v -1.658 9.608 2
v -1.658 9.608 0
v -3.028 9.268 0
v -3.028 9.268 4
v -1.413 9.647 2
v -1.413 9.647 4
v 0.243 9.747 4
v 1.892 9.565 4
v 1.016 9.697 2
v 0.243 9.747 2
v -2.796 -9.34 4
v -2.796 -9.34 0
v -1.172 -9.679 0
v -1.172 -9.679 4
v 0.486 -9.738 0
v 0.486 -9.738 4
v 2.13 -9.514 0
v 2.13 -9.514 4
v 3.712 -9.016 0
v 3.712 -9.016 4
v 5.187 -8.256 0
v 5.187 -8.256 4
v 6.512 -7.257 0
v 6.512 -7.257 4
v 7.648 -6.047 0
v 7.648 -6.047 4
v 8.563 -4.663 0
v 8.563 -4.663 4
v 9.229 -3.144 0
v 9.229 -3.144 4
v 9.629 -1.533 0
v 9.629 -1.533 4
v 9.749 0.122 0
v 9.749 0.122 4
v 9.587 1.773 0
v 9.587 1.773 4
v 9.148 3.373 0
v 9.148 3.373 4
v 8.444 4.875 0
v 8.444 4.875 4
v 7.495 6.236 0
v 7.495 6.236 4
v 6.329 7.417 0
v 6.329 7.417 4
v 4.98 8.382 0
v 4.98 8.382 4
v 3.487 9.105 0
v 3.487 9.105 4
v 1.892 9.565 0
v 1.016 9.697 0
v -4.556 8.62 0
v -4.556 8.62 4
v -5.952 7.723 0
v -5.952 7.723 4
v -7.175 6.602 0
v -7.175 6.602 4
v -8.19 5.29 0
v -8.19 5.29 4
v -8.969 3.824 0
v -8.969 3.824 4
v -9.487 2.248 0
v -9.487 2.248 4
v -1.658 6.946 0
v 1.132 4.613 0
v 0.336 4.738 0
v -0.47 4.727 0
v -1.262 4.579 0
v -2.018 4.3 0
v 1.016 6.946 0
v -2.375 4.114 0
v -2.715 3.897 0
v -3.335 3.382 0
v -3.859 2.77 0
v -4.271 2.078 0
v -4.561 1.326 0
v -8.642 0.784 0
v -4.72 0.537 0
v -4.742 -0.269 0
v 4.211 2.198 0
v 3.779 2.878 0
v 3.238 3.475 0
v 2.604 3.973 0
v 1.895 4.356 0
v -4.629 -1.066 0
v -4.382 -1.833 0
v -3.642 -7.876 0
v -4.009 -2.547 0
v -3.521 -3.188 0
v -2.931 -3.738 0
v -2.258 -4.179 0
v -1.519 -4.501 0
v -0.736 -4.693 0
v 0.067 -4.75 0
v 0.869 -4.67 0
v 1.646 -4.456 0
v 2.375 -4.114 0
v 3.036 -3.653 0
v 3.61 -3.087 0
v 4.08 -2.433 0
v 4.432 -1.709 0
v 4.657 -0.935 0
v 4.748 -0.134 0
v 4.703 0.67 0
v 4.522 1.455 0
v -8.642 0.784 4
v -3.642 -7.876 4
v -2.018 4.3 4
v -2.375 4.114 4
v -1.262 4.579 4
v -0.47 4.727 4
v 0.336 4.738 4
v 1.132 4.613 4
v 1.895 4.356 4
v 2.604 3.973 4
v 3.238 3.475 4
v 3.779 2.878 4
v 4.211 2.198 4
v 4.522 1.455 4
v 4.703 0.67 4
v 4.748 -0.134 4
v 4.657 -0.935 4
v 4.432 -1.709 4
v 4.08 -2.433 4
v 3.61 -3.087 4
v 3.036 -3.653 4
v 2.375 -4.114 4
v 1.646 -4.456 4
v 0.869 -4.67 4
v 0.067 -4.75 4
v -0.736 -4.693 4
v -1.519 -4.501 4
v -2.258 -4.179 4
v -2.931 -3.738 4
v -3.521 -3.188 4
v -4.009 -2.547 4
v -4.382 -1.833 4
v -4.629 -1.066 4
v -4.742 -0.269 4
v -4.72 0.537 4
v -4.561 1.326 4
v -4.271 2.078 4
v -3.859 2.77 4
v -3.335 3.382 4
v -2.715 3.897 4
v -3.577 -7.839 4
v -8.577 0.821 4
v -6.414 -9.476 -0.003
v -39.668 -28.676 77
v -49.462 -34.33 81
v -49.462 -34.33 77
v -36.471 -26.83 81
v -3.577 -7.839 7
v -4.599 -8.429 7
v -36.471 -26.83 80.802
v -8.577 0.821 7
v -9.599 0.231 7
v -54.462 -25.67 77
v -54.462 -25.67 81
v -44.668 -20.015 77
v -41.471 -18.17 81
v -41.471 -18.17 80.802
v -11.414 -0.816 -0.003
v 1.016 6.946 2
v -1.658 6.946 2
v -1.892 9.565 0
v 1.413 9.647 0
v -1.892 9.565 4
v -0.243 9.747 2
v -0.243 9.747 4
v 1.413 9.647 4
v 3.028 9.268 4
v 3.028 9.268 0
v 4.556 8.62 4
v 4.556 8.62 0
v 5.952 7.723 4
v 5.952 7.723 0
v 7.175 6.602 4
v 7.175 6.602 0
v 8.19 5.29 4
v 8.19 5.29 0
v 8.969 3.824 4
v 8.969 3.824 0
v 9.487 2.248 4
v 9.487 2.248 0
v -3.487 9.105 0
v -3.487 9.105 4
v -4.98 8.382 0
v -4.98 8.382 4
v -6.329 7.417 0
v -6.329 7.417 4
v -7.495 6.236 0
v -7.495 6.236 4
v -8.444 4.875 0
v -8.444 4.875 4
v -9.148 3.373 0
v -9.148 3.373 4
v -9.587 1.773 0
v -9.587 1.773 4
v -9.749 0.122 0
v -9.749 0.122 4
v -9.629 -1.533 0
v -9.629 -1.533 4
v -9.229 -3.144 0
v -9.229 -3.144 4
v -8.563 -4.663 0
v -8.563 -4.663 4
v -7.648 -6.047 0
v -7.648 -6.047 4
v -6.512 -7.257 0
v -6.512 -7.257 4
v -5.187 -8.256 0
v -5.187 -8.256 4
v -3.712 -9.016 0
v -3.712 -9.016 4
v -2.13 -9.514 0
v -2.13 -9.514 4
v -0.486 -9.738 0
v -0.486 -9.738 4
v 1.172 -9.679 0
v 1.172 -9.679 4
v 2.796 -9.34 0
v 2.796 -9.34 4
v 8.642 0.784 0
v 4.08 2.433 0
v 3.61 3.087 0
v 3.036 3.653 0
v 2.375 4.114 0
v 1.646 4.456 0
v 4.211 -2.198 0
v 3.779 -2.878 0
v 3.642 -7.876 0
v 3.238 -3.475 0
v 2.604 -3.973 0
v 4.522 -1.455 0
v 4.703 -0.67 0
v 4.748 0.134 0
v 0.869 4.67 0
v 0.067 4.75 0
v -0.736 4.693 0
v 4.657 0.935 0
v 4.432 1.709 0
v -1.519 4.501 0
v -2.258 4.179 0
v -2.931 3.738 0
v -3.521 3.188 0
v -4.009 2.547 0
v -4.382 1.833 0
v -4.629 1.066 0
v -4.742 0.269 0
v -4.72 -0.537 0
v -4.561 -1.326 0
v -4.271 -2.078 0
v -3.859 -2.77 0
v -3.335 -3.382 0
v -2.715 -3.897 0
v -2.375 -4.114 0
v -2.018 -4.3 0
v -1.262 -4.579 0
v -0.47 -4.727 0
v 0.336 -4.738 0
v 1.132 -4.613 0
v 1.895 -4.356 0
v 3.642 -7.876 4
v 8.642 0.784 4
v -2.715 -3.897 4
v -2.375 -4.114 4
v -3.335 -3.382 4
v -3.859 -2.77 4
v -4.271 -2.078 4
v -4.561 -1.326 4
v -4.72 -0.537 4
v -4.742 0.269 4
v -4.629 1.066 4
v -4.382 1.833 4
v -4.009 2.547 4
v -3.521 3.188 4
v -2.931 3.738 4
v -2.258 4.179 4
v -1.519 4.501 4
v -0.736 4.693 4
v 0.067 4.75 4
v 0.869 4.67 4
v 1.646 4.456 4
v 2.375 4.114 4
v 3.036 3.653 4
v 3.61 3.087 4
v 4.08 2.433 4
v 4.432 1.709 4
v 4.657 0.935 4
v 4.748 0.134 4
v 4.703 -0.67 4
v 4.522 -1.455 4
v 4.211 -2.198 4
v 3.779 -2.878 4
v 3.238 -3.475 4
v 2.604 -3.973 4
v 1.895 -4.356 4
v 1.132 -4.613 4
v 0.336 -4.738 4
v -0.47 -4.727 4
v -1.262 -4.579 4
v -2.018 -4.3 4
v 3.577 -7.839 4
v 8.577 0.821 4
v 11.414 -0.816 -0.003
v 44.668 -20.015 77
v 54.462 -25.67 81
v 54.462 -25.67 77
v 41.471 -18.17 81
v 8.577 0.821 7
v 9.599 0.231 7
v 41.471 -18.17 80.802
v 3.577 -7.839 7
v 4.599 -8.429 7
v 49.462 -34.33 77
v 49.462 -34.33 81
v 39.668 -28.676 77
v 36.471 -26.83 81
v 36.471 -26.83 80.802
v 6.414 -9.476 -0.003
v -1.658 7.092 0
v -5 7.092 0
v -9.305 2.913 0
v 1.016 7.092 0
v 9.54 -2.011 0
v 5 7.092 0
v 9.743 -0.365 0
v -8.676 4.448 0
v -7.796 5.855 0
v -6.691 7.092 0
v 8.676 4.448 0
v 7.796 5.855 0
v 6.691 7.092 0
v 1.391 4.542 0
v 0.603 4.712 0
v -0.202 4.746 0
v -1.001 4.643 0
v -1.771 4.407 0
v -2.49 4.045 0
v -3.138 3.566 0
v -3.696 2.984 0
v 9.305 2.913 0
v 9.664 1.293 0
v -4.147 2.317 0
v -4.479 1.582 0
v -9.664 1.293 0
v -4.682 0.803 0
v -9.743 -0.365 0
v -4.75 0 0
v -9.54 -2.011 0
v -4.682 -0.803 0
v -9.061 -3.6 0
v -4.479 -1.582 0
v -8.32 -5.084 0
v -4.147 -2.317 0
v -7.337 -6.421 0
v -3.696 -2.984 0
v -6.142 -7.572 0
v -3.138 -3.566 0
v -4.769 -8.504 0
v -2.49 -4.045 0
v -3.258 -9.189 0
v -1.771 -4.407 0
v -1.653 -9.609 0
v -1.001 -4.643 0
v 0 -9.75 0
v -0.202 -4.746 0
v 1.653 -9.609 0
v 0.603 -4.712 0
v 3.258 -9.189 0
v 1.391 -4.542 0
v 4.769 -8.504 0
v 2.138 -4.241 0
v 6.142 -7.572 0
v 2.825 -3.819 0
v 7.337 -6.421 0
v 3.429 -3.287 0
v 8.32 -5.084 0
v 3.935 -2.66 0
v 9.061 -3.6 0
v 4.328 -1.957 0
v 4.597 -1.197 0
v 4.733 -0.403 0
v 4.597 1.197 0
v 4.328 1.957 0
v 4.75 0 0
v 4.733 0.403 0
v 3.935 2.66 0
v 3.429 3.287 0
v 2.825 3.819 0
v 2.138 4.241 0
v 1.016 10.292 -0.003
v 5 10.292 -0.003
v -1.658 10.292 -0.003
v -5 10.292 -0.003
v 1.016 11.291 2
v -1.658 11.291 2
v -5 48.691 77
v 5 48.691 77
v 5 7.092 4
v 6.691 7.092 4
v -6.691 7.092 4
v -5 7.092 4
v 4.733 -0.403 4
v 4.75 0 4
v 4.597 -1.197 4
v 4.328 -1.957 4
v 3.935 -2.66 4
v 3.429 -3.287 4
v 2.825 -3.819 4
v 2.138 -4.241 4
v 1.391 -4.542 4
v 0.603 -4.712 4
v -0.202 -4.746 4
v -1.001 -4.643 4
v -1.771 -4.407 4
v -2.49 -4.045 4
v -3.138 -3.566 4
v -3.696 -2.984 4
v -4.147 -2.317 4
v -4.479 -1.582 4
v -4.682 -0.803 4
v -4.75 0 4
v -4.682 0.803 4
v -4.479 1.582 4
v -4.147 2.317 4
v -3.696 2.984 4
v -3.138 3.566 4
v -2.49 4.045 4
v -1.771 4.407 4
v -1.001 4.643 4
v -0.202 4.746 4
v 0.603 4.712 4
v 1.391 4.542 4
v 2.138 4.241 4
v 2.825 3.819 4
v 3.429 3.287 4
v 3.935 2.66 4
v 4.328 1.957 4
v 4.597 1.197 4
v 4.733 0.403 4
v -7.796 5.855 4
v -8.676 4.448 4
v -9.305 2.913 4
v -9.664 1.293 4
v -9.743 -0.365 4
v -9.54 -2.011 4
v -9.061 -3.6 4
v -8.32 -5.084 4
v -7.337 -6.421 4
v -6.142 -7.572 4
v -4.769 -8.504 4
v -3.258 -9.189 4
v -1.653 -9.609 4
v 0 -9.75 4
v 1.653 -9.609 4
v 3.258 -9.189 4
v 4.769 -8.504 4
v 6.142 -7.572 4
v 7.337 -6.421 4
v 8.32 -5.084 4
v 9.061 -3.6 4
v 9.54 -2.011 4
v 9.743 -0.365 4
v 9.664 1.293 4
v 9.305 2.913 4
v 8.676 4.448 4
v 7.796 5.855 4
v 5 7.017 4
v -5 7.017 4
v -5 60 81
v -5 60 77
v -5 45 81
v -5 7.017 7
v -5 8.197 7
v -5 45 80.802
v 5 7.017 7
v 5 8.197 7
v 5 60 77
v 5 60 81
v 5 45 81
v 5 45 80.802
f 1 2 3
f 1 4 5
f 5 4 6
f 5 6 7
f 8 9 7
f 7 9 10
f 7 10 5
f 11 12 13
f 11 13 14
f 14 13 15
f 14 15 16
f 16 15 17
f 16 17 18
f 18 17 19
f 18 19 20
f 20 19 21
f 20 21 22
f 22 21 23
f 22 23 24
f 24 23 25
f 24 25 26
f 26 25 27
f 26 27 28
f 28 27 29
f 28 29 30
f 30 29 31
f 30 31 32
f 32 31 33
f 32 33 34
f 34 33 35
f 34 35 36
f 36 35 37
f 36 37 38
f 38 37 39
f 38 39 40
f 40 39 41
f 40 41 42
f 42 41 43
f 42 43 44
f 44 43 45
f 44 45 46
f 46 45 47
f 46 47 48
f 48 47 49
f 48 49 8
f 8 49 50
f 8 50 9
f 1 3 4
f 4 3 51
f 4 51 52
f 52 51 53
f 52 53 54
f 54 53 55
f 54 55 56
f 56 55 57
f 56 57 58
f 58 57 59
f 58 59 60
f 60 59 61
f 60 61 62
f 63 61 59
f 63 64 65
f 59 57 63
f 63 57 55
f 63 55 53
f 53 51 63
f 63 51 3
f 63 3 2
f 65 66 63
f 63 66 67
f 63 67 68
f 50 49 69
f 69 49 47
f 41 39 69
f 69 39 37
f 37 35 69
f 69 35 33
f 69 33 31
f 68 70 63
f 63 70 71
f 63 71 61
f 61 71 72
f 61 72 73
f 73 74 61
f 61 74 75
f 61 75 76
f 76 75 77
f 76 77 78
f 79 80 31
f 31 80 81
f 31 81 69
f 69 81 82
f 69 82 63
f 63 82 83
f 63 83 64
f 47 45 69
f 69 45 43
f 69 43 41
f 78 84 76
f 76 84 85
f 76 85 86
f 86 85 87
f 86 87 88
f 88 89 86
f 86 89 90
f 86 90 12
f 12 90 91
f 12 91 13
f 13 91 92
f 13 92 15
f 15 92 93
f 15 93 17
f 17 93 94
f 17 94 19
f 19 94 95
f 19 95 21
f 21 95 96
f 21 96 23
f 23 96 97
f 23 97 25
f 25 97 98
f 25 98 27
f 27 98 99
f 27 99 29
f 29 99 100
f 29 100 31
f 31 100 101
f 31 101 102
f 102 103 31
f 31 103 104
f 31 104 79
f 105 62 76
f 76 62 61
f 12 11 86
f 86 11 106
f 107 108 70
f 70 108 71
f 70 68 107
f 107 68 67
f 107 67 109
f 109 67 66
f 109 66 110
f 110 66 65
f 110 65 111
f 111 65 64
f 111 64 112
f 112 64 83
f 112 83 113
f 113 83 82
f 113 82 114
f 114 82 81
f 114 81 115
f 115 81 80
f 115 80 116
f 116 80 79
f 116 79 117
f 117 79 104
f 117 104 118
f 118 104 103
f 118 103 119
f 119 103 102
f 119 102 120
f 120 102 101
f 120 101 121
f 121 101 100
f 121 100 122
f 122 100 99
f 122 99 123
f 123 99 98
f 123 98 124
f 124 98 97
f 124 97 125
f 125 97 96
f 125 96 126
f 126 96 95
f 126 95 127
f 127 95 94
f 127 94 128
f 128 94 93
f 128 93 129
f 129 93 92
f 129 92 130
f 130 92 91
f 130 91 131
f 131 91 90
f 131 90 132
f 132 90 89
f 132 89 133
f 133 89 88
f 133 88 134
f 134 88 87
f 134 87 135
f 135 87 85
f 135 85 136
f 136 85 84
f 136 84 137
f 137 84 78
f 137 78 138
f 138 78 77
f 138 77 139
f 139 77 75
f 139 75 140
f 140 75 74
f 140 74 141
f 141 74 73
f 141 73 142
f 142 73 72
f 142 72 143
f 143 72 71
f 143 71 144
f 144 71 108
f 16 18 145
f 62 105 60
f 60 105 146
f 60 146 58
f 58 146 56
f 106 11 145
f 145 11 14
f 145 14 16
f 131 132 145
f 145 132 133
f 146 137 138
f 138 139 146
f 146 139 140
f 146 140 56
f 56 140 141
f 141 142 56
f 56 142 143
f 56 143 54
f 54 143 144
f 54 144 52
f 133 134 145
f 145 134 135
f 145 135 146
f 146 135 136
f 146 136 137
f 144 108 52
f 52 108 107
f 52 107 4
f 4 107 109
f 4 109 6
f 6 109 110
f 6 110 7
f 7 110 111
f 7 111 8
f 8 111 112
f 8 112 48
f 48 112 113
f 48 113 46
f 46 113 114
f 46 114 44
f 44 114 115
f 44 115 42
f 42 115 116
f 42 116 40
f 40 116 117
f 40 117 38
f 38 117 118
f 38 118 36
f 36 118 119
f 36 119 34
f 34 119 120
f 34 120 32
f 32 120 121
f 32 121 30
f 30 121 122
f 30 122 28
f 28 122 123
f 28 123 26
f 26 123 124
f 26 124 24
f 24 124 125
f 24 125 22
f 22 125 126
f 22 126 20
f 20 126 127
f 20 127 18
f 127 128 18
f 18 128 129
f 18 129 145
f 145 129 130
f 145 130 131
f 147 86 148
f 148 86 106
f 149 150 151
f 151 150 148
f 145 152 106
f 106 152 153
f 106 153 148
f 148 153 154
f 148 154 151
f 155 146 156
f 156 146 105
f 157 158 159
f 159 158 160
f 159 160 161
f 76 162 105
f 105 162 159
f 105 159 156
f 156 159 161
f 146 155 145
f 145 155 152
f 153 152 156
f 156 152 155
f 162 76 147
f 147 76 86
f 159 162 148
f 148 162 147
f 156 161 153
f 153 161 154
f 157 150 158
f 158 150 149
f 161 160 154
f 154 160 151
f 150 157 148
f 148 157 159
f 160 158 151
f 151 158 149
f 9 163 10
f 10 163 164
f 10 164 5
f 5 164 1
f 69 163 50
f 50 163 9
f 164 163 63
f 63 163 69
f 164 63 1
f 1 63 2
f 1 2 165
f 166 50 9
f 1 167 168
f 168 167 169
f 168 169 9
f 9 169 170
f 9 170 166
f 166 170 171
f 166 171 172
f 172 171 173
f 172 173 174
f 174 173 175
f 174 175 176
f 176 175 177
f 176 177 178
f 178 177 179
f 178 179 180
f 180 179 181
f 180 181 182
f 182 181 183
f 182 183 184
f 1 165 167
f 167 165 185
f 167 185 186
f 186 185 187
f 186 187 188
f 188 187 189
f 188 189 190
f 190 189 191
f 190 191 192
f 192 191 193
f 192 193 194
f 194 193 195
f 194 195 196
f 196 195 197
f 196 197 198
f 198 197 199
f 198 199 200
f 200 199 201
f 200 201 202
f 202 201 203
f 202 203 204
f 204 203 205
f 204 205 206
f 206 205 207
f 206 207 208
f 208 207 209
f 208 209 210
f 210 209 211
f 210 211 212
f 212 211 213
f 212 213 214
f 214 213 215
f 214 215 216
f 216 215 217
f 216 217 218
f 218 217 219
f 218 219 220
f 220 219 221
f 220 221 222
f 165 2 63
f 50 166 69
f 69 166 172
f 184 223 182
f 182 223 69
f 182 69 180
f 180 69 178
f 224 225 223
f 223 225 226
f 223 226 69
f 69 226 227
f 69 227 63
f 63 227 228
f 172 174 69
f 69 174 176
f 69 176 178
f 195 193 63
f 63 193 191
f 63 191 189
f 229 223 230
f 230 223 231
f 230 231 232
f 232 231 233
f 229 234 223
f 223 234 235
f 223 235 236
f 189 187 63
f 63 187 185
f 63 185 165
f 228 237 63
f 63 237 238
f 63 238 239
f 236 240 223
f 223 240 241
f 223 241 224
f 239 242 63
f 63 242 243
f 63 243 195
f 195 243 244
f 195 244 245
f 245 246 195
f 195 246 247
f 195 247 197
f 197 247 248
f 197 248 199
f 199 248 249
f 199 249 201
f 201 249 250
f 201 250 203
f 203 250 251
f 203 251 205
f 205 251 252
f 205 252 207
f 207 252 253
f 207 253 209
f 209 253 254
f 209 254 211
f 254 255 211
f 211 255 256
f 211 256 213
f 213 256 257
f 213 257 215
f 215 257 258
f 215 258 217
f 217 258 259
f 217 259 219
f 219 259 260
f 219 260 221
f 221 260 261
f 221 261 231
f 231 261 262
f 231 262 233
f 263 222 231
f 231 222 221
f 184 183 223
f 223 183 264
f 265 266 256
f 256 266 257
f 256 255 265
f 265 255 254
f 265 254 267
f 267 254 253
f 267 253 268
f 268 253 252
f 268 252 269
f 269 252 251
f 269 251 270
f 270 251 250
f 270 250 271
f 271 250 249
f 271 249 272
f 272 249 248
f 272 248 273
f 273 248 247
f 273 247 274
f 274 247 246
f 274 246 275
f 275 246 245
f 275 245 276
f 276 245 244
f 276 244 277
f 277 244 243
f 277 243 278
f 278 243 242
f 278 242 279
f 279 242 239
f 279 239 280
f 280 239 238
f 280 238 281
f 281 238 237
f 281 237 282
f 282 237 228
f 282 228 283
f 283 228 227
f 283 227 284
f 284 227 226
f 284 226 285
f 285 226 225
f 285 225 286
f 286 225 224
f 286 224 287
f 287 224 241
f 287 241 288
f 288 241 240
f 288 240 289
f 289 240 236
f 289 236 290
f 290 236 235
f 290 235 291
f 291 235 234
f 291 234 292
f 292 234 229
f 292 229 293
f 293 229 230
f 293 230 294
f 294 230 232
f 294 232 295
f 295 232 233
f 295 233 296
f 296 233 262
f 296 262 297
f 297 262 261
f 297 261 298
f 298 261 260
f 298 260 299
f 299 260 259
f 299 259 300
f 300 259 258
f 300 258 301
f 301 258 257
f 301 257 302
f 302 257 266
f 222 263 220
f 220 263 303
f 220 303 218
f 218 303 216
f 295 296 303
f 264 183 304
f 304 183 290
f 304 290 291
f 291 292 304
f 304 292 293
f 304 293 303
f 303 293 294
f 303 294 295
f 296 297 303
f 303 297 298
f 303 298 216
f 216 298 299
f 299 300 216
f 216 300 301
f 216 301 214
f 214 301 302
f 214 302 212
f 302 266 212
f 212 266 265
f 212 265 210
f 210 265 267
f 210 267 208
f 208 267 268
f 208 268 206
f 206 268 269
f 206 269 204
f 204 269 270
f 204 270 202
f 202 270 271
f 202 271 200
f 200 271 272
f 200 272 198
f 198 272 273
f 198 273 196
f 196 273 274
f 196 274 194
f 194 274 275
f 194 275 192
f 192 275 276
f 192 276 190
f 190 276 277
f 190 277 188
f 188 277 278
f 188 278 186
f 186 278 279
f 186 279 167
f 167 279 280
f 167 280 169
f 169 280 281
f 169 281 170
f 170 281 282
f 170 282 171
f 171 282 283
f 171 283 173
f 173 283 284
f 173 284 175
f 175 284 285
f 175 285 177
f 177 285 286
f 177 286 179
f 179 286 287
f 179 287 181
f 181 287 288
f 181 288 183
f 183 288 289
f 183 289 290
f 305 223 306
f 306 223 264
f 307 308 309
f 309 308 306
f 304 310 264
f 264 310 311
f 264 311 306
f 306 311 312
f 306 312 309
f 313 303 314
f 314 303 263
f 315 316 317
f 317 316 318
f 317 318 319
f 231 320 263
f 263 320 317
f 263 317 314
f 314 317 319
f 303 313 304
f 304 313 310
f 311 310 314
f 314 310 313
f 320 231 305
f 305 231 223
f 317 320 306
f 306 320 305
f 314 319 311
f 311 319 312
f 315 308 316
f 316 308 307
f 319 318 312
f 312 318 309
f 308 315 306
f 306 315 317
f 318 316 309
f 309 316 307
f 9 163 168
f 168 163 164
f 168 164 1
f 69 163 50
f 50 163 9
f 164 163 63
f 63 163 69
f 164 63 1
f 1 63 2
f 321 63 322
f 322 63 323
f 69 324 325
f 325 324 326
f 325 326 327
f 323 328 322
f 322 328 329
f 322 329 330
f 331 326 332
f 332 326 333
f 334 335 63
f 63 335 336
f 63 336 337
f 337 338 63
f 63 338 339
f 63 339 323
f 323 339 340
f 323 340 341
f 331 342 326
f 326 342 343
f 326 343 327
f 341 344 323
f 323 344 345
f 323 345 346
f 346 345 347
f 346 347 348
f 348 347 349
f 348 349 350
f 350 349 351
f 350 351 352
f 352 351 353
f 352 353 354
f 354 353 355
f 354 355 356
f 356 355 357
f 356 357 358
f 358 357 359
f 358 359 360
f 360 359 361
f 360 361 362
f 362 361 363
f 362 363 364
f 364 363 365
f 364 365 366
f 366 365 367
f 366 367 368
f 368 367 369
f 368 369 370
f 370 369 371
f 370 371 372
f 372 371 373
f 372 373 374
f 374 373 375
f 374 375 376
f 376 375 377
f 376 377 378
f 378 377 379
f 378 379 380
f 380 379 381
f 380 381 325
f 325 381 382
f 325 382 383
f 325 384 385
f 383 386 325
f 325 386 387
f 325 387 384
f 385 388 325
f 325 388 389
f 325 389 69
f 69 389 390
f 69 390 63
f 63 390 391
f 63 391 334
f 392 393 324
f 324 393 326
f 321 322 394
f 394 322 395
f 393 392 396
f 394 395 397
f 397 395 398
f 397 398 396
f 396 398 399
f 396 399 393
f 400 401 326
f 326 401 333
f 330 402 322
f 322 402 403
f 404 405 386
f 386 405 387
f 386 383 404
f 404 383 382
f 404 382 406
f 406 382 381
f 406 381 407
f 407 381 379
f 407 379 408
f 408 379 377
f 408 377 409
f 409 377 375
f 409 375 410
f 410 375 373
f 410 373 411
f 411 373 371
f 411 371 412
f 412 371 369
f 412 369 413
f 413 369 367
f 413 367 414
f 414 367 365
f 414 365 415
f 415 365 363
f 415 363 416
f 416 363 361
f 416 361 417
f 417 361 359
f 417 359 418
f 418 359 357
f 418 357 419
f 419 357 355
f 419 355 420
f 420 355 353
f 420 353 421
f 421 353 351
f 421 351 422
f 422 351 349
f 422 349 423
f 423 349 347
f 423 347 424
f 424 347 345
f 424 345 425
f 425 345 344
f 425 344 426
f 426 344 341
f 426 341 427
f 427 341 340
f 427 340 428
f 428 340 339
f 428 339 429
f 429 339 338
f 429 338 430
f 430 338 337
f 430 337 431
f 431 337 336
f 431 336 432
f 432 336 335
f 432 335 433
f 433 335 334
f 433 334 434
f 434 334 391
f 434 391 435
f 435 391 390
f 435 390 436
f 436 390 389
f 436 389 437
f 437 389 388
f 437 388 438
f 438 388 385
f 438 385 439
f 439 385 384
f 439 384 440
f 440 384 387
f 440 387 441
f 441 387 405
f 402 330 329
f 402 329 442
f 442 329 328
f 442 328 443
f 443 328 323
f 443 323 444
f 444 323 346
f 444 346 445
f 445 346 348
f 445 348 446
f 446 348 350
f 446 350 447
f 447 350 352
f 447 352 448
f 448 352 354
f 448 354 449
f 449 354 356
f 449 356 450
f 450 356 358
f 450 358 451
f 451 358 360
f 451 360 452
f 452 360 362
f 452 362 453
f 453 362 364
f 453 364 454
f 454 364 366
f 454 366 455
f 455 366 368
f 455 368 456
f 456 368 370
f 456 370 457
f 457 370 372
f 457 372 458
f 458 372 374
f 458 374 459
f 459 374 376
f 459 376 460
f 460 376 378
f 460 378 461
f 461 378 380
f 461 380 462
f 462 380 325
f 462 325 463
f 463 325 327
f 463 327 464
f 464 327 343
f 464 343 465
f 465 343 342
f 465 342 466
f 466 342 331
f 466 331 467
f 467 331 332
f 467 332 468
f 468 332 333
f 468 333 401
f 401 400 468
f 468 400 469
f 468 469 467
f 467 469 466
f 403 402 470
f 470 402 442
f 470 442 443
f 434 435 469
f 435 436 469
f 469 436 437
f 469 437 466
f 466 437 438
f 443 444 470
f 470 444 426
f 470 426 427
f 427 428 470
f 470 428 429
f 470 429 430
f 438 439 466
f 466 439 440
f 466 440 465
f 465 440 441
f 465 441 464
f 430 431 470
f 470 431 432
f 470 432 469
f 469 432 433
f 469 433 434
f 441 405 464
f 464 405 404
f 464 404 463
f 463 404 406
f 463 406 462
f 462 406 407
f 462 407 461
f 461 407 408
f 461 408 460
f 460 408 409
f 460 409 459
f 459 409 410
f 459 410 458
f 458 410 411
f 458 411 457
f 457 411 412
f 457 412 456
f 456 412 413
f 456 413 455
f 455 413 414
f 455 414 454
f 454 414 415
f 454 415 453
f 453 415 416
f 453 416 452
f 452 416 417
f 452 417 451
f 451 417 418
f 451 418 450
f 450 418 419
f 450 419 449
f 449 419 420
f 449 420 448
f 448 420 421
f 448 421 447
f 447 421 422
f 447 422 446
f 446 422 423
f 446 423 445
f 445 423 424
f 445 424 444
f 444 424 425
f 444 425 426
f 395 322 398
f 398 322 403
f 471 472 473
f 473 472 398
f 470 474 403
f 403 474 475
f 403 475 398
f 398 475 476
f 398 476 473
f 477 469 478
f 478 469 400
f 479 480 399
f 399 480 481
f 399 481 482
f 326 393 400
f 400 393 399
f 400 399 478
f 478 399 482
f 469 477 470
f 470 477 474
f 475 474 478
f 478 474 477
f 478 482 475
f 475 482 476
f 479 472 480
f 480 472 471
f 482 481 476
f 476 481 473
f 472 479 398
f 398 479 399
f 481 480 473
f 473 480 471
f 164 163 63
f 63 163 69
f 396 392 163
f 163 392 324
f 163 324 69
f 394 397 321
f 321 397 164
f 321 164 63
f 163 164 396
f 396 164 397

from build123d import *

# Parameters (mm, degrees)
SKETCH1_R                = 4.75
BOSS_EXTRUDE1_DEPTH      = 4
SKETCH2_W                = 10
SKETCH2_H                = 3.269716928
BOSS_EXTRUDE3_DEPTH      = 3
BOSS_EXTRUDE3_DEPTH_BACK = 2
SKETCH6_W                = 10
SKETCH6_H                = 15
BOSS_EXTRUDE4_DEPTH      = 4
BOSS_EXTRUDE5_DEPTH      = 10
CIRPATTERN2_COUNT        = 3
SKETCH8_W                = 2.673559767
SKETCH8_H                = 4.657077396
CUT_EXTRUDE2_DEPTH       = 2
CUT_EXTRUDE2_DEPTH_BACK  = 2


with BuildPart() as part:
    # Sketch1 → Boss-Extrude1 (new body)
    with BuildSketch(Plane.XY):
        with BuildLine():
            Line((6.690811411, 7.091935043), (-6.690811411, 7.091935043))
            ThreePointArc((-6.690811411, 7.091935043), (-3.861805843, -8.95259491), (9.75, 0))
            ThreePointArc((9.75, 0), (8.95259491, 3.861805843), (6.690811411, 7.091935043))
        make_face()
        Circle(SKETCH1_R, mode=Mode.SUBTRACT)
    extrude(amount=BOSS_EXTRUDE1_DEPTH)

    # Sketch2 → Boss-Extrude3 (add, two sides)
    with BuildSketch(Plane.XY.offset(4)) as boss_extrude3_sk:
        with Locations((0, 8.652125422)):
            Rectangle(SKETCH2_W, SKETCH2_H)
    extrude(amount=BOSS_EXTRUDE3_DEPTH)
    extrude(boss_extrude3_sk.sketch, amount=-BOSS_EXTRUDE3_DEPTH_BACK)



with BuildPart() as body_2:
    # Sketch6 → Boss-Extrude4 (new body)
    with BuildSketch(Plane.XY.offset(81)):
        with Locations((0, 52.5)):
            Rectangle(SKETCH6_W, SKETCH6_H)
    extrude(amount=-BOSS_EXTRUDE4_DEPTH)


with BuildPart() as part_1:
    add(part.part)

    add(body_2.part)  # Boss-Extrude5 merges body 2
    # Sketch7 → Boss-Extrude5 (add)
    with BuildSketch(Plane.ZY.offset(5)):
        Polygon((-0.002733191, 10.292464872), (77, 48.691244479), (80.802029792, 45), (7, 8.197307951), (7, 7.017266958), (0, 7.091935043), align=None)
    extrude(amount=-BOSS_EXTRUDE5_DEPTH)


with BuildPart() as cirpattern2_1:
    # CirPattern2: pattern copy
    add(part_1.part.rotate(Axis((0, 0, 0), (0, 0, 1)), 1 * 360 / CIRPATTERN2_COUNT))


with BuildPart() as cirpattern2_2:
    # CirPattern2: pattern copy
    add(part_1.part.rotate(Axis((0, 0, 0), (0, 0, 1)), 2 * 360 / CIRPATTERN2_COUNT))


with BuildPart() as cut_extrude2_tool:
    # Sketch8 → Cut-Extrude2 (new body, two sides)
    with BuildSketch(Plane(origin=(0, 0, 0), x_dir=(-1, 0, 0), z_dir=(0, 0, -1))) as cut_extrude2_sk:
        with Locations((0.321098697, 9.274223879)):
            Rectangle(SKETCH8_W, SKETCH8_H)
    extrude(amount=CUT_EXTRUDE2_DEPTH)
    extrude(cut_extrude2_sk.sketch, amount=-CUT_EXTRUDE2_DEPTH_BACK)


with BuildPart() as part_2:
    add(part_1.part)

    # Cut-Extrude2: cut by cut_extrude2_tool
    add(cut_extrude2_tool.part, mode=Mode.SUBTRACT)


with BuildPart() as cirpattern2_1_1:
    add(cirpattern2_1.part)

    # Cut-Extrude2: cut by cut_extrude2_tool
    add(cut_extrude2_tool.part, mode=Mode.SUBTRACT)


with BuildPart() as cirpattern2_2_1:
    add(cirpattern2_2.part)

    # Cut-Extrude2: cut by cut_extrude2_tool
    add(cut_extrude2_tool.part, mode=Mode.SUBTRACT)


solid = Compound([part_2.part, cirpattern2_1_1.part, cirpattern2_2_1.part])
